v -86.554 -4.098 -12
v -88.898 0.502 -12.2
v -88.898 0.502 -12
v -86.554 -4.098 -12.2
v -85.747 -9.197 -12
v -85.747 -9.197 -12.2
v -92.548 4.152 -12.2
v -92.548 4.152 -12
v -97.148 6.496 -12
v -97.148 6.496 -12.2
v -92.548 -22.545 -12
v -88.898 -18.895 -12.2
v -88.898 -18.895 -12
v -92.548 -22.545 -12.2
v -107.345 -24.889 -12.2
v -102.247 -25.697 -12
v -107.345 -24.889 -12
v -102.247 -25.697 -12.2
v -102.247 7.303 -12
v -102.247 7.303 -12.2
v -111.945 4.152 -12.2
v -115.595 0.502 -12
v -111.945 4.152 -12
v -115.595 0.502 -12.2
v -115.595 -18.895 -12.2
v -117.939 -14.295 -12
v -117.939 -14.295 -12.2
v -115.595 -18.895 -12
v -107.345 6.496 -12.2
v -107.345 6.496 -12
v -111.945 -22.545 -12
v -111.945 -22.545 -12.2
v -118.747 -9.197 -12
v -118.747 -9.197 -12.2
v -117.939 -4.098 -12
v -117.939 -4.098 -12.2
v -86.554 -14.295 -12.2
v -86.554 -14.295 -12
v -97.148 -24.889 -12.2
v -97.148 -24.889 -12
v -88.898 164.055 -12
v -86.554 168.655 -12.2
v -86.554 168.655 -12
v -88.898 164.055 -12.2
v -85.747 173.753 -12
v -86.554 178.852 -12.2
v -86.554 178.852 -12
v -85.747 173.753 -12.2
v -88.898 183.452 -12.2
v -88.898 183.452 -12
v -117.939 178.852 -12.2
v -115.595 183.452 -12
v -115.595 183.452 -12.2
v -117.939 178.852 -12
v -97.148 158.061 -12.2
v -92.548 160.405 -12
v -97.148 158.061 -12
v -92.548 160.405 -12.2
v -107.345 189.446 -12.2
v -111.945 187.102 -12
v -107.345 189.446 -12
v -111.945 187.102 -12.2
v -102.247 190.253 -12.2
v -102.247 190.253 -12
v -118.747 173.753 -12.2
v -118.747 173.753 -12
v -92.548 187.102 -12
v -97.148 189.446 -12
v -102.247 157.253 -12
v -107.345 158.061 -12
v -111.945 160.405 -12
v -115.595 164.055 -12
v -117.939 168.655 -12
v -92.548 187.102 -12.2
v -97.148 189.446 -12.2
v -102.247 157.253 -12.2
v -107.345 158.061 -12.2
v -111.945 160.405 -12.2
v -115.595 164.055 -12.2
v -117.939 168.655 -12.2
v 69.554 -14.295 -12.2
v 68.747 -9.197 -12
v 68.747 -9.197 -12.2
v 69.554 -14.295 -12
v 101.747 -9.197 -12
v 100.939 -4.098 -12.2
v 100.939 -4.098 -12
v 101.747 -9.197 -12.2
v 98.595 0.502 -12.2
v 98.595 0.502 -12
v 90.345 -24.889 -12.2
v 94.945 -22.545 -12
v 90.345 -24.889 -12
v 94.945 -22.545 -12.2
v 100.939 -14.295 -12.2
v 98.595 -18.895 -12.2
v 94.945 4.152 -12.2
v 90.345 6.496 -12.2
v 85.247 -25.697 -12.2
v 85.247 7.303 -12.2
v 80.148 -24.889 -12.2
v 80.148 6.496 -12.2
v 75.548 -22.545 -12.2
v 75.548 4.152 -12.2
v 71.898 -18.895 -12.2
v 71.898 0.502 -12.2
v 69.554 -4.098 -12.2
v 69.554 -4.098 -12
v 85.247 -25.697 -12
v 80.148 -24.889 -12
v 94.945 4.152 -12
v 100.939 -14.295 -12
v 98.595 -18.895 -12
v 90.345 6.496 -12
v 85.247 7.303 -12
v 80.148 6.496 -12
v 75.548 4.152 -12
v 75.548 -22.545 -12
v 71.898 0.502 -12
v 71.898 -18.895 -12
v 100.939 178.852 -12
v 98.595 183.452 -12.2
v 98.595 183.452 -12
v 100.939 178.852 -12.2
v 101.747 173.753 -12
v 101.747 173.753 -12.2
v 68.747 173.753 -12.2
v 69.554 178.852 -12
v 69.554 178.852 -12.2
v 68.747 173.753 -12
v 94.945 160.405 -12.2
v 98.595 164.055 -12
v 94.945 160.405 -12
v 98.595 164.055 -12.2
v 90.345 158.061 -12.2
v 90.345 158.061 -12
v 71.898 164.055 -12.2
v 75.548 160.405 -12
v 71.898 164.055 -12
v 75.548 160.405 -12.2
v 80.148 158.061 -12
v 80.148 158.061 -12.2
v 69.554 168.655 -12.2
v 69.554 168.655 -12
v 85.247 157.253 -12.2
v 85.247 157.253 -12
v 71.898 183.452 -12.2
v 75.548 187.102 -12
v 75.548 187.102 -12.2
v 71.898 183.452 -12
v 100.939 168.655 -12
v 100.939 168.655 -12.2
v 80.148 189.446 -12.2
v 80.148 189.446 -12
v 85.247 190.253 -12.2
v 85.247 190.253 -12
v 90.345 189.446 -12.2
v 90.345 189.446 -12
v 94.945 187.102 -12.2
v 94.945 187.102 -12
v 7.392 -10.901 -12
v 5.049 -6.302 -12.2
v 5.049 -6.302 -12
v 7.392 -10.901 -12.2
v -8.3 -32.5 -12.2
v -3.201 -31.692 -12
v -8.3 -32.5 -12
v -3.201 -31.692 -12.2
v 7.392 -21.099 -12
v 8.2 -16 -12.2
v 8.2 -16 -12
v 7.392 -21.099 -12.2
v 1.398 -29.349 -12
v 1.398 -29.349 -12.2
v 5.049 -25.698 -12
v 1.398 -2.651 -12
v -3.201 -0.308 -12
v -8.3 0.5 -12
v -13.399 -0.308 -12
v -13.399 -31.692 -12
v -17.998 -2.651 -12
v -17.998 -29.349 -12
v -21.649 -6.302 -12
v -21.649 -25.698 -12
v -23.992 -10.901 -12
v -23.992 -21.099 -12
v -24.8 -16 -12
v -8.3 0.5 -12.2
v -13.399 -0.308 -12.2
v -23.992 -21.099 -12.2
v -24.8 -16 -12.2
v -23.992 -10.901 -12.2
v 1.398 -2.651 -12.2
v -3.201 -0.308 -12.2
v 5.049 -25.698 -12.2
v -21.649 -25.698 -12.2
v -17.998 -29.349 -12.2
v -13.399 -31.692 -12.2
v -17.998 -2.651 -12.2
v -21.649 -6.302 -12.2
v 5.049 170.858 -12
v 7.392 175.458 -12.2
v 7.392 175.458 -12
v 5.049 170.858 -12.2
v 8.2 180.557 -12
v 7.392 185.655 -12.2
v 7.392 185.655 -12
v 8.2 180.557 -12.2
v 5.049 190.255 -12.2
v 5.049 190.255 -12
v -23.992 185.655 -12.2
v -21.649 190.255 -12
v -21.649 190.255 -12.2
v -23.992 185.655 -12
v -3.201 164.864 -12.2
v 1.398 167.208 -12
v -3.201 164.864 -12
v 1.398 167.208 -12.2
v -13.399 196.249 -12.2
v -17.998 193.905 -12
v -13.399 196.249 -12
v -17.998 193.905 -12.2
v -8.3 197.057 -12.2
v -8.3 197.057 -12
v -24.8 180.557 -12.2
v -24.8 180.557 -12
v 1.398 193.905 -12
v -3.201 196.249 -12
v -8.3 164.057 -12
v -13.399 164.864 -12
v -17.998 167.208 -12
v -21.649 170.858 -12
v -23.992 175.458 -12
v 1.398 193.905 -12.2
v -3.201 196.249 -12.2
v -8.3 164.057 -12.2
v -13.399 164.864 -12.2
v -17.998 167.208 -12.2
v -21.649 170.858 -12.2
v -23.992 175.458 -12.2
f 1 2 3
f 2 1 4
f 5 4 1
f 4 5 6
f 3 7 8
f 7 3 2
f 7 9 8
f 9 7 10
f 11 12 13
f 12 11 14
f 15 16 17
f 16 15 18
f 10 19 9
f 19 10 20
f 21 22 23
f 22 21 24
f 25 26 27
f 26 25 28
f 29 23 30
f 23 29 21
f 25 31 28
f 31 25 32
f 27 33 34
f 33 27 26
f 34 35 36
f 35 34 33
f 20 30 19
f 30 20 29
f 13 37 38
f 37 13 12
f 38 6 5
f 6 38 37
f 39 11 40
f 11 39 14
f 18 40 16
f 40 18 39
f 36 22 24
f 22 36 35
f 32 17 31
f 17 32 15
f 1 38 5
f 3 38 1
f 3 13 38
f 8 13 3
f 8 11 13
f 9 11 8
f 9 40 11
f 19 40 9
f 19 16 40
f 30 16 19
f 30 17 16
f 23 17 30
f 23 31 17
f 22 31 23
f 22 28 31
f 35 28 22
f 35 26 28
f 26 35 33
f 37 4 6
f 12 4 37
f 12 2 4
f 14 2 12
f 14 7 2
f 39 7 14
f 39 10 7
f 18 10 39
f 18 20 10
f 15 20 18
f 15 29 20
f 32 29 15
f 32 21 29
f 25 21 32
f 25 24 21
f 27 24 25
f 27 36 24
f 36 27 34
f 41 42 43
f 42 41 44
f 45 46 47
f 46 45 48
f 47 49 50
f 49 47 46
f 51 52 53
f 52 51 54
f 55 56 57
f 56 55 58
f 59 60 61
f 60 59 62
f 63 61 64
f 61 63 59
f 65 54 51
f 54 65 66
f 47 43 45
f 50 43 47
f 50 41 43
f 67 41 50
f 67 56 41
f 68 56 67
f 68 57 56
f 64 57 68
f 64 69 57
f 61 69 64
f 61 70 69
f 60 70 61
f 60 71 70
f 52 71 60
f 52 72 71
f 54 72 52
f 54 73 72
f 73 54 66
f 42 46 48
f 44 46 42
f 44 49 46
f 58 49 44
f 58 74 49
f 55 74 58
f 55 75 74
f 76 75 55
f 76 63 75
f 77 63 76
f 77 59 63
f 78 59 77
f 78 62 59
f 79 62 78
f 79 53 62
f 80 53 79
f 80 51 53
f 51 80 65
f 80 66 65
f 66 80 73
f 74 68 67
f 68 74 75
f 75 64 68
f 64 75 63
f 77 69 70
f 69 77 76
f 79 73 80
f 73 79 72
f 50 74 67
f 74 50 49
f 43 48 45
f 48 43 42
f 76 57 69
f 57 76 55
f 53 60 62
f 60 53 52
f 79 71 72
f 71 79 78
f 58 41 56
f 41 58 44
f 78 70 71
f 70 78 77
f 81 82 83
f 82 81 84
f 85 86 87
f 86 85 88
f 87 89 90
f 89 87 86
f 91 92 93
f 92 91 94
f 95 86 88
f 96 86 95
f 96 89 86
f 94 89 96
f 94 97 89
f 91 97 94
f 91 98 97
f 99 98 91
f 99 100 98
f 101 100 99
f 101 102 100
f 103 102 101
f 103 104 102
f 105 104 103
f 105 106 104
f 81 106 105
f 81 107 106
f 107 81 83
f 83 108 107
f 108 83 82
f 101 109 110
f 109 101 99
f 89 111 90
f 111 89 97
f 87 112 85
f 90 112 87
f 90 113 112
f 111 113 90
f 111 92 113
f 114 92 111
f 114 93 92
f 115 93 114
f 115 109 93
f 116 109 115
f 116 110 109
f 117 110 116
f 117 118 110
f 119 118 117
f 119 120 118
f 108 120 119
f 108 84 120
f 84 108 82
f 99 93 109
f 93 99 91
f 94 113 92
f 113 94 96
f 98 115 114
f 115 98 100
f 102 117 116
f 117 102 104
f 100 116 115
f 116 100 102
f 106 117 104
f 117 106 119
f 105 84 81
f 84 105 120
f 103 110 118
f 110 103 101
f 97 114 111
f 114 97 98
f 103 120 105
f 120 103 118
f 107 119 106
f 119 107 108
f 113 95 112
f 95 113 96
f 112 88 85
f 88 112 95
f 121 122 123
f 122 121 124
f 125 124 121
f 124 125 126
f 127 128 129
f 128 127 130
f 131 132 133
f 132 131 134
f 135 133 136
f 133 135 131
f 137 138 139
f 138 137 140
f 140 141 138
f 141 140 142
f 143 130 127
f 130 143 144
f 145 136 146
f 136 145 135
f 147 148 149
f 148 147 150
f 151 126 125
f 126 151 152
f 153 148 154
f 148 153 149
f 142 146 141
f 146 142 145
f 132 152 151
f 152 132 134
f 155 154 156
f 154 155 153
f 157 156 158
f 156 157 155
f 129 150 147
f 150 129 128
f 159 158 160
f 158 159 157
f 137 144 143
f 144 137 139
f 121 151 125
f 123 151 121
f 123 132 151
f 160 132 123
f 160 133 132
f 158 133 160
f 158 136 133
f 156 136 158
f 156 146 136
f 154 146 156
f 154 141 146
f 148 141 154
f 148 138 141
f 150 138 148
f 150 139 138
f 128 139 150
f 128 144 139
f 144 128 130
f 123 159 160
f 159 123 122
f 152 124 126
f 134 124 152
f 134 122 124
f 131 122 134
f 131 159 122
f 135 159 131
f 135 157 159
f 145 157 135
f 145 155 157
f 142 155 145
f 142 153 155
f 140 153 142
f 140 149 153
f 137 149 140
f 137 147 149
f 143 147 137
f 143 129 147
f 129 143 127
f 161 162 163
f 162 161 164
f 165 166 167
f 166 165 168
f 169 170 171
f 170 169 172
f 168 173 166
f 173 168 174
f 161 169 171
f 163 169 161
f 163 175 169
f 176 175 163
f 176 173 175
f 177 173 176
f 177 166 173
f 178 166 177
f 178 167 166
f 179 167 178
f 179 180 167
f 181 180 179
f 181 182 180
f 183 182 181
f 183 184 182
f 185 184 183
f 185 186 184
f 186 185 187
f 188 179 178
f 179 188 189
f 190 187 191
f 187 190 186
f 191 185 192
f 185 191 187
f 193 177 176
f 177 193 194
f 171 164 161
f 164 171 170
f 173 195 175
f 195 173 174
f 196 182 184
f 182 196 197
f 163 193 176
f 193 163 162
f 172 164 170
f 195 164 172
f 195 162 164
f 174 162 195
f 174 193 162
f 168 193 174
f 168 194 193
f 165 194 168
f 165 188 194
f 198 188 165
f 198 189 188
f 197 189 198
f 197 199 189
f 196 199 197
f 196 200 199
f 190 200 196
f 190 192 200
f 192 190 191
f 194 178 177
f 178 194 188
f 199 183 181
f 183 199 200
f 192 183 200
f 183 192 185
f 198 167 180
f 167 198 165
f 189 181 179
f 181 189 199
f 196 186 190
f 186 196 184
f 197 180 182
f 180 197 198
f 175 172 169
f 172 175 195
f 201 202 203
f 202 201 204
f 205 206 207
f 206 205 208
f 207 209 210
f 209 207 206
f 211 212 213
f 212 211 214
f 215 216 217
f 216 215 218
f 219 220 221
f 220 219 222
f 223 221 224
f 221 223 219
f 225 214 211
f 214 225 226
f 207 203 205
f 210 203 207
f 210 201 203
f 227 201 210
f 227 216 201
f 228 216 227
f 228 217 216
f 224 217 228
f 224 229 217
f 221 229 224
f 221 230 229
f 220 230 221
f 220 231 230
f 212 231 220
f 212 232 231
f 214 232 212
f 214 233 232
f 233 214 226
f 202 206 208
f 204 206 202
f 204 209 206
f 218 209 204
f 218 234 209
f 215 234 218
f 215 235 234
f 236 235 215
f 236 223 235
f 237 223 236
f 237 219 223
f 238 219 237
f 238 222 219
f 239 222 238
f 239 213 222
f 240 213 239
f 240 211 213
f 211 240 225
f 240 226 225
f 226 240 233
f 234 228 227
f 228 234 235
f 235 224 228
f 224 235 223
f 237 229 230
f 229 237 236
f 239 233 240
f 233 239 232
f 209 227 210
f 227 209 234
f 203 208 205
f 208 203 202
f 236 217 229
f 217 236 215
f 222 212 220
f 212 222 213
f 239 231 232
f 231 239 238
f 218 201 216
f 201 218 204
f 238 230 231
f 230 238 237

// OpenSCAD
WIDTH                  =  75.4  + 2.5      +0.15;
LENGTH                 = 164.45 + 1.2  -.4 -0.7;
WALL_THICKNESS             =   2.0 +.2;
THICKNESS              =  10.0  + 0.5;

module pad(r) {
    cylinder(r=r+1.5, h=.2, $fn=20);
}

module pads() {
    // adhesion pads

    r = 15;
    r2 = r/sqrt(2);

    for(x=[-WIDTH-r*2+r2/2+.5, WIDTH+r-r2/2-2-.5])
    for(y=[-r+r2/2+.5, LENGTH+WALL_THICKNESS*2+r2/2-.5])
        translate([x, y, -THICKNESS-WALL_THICKNESS+.5])
        pad(r); //cylinder(r=r, h=.6, $fn=20);


    for(x=[-THICKNESS+2.2])
    for(y=[-r-1, LENGTH++WALL_THICKNESS*2+r2+1])
        translate([x, y, -THICKNESS-WALL_THICKNESS+.5])
        //scale([.5, 1, 1])
        pad(r); //cylinder(r=r, h=.6, $fn=20);
}

pads();
